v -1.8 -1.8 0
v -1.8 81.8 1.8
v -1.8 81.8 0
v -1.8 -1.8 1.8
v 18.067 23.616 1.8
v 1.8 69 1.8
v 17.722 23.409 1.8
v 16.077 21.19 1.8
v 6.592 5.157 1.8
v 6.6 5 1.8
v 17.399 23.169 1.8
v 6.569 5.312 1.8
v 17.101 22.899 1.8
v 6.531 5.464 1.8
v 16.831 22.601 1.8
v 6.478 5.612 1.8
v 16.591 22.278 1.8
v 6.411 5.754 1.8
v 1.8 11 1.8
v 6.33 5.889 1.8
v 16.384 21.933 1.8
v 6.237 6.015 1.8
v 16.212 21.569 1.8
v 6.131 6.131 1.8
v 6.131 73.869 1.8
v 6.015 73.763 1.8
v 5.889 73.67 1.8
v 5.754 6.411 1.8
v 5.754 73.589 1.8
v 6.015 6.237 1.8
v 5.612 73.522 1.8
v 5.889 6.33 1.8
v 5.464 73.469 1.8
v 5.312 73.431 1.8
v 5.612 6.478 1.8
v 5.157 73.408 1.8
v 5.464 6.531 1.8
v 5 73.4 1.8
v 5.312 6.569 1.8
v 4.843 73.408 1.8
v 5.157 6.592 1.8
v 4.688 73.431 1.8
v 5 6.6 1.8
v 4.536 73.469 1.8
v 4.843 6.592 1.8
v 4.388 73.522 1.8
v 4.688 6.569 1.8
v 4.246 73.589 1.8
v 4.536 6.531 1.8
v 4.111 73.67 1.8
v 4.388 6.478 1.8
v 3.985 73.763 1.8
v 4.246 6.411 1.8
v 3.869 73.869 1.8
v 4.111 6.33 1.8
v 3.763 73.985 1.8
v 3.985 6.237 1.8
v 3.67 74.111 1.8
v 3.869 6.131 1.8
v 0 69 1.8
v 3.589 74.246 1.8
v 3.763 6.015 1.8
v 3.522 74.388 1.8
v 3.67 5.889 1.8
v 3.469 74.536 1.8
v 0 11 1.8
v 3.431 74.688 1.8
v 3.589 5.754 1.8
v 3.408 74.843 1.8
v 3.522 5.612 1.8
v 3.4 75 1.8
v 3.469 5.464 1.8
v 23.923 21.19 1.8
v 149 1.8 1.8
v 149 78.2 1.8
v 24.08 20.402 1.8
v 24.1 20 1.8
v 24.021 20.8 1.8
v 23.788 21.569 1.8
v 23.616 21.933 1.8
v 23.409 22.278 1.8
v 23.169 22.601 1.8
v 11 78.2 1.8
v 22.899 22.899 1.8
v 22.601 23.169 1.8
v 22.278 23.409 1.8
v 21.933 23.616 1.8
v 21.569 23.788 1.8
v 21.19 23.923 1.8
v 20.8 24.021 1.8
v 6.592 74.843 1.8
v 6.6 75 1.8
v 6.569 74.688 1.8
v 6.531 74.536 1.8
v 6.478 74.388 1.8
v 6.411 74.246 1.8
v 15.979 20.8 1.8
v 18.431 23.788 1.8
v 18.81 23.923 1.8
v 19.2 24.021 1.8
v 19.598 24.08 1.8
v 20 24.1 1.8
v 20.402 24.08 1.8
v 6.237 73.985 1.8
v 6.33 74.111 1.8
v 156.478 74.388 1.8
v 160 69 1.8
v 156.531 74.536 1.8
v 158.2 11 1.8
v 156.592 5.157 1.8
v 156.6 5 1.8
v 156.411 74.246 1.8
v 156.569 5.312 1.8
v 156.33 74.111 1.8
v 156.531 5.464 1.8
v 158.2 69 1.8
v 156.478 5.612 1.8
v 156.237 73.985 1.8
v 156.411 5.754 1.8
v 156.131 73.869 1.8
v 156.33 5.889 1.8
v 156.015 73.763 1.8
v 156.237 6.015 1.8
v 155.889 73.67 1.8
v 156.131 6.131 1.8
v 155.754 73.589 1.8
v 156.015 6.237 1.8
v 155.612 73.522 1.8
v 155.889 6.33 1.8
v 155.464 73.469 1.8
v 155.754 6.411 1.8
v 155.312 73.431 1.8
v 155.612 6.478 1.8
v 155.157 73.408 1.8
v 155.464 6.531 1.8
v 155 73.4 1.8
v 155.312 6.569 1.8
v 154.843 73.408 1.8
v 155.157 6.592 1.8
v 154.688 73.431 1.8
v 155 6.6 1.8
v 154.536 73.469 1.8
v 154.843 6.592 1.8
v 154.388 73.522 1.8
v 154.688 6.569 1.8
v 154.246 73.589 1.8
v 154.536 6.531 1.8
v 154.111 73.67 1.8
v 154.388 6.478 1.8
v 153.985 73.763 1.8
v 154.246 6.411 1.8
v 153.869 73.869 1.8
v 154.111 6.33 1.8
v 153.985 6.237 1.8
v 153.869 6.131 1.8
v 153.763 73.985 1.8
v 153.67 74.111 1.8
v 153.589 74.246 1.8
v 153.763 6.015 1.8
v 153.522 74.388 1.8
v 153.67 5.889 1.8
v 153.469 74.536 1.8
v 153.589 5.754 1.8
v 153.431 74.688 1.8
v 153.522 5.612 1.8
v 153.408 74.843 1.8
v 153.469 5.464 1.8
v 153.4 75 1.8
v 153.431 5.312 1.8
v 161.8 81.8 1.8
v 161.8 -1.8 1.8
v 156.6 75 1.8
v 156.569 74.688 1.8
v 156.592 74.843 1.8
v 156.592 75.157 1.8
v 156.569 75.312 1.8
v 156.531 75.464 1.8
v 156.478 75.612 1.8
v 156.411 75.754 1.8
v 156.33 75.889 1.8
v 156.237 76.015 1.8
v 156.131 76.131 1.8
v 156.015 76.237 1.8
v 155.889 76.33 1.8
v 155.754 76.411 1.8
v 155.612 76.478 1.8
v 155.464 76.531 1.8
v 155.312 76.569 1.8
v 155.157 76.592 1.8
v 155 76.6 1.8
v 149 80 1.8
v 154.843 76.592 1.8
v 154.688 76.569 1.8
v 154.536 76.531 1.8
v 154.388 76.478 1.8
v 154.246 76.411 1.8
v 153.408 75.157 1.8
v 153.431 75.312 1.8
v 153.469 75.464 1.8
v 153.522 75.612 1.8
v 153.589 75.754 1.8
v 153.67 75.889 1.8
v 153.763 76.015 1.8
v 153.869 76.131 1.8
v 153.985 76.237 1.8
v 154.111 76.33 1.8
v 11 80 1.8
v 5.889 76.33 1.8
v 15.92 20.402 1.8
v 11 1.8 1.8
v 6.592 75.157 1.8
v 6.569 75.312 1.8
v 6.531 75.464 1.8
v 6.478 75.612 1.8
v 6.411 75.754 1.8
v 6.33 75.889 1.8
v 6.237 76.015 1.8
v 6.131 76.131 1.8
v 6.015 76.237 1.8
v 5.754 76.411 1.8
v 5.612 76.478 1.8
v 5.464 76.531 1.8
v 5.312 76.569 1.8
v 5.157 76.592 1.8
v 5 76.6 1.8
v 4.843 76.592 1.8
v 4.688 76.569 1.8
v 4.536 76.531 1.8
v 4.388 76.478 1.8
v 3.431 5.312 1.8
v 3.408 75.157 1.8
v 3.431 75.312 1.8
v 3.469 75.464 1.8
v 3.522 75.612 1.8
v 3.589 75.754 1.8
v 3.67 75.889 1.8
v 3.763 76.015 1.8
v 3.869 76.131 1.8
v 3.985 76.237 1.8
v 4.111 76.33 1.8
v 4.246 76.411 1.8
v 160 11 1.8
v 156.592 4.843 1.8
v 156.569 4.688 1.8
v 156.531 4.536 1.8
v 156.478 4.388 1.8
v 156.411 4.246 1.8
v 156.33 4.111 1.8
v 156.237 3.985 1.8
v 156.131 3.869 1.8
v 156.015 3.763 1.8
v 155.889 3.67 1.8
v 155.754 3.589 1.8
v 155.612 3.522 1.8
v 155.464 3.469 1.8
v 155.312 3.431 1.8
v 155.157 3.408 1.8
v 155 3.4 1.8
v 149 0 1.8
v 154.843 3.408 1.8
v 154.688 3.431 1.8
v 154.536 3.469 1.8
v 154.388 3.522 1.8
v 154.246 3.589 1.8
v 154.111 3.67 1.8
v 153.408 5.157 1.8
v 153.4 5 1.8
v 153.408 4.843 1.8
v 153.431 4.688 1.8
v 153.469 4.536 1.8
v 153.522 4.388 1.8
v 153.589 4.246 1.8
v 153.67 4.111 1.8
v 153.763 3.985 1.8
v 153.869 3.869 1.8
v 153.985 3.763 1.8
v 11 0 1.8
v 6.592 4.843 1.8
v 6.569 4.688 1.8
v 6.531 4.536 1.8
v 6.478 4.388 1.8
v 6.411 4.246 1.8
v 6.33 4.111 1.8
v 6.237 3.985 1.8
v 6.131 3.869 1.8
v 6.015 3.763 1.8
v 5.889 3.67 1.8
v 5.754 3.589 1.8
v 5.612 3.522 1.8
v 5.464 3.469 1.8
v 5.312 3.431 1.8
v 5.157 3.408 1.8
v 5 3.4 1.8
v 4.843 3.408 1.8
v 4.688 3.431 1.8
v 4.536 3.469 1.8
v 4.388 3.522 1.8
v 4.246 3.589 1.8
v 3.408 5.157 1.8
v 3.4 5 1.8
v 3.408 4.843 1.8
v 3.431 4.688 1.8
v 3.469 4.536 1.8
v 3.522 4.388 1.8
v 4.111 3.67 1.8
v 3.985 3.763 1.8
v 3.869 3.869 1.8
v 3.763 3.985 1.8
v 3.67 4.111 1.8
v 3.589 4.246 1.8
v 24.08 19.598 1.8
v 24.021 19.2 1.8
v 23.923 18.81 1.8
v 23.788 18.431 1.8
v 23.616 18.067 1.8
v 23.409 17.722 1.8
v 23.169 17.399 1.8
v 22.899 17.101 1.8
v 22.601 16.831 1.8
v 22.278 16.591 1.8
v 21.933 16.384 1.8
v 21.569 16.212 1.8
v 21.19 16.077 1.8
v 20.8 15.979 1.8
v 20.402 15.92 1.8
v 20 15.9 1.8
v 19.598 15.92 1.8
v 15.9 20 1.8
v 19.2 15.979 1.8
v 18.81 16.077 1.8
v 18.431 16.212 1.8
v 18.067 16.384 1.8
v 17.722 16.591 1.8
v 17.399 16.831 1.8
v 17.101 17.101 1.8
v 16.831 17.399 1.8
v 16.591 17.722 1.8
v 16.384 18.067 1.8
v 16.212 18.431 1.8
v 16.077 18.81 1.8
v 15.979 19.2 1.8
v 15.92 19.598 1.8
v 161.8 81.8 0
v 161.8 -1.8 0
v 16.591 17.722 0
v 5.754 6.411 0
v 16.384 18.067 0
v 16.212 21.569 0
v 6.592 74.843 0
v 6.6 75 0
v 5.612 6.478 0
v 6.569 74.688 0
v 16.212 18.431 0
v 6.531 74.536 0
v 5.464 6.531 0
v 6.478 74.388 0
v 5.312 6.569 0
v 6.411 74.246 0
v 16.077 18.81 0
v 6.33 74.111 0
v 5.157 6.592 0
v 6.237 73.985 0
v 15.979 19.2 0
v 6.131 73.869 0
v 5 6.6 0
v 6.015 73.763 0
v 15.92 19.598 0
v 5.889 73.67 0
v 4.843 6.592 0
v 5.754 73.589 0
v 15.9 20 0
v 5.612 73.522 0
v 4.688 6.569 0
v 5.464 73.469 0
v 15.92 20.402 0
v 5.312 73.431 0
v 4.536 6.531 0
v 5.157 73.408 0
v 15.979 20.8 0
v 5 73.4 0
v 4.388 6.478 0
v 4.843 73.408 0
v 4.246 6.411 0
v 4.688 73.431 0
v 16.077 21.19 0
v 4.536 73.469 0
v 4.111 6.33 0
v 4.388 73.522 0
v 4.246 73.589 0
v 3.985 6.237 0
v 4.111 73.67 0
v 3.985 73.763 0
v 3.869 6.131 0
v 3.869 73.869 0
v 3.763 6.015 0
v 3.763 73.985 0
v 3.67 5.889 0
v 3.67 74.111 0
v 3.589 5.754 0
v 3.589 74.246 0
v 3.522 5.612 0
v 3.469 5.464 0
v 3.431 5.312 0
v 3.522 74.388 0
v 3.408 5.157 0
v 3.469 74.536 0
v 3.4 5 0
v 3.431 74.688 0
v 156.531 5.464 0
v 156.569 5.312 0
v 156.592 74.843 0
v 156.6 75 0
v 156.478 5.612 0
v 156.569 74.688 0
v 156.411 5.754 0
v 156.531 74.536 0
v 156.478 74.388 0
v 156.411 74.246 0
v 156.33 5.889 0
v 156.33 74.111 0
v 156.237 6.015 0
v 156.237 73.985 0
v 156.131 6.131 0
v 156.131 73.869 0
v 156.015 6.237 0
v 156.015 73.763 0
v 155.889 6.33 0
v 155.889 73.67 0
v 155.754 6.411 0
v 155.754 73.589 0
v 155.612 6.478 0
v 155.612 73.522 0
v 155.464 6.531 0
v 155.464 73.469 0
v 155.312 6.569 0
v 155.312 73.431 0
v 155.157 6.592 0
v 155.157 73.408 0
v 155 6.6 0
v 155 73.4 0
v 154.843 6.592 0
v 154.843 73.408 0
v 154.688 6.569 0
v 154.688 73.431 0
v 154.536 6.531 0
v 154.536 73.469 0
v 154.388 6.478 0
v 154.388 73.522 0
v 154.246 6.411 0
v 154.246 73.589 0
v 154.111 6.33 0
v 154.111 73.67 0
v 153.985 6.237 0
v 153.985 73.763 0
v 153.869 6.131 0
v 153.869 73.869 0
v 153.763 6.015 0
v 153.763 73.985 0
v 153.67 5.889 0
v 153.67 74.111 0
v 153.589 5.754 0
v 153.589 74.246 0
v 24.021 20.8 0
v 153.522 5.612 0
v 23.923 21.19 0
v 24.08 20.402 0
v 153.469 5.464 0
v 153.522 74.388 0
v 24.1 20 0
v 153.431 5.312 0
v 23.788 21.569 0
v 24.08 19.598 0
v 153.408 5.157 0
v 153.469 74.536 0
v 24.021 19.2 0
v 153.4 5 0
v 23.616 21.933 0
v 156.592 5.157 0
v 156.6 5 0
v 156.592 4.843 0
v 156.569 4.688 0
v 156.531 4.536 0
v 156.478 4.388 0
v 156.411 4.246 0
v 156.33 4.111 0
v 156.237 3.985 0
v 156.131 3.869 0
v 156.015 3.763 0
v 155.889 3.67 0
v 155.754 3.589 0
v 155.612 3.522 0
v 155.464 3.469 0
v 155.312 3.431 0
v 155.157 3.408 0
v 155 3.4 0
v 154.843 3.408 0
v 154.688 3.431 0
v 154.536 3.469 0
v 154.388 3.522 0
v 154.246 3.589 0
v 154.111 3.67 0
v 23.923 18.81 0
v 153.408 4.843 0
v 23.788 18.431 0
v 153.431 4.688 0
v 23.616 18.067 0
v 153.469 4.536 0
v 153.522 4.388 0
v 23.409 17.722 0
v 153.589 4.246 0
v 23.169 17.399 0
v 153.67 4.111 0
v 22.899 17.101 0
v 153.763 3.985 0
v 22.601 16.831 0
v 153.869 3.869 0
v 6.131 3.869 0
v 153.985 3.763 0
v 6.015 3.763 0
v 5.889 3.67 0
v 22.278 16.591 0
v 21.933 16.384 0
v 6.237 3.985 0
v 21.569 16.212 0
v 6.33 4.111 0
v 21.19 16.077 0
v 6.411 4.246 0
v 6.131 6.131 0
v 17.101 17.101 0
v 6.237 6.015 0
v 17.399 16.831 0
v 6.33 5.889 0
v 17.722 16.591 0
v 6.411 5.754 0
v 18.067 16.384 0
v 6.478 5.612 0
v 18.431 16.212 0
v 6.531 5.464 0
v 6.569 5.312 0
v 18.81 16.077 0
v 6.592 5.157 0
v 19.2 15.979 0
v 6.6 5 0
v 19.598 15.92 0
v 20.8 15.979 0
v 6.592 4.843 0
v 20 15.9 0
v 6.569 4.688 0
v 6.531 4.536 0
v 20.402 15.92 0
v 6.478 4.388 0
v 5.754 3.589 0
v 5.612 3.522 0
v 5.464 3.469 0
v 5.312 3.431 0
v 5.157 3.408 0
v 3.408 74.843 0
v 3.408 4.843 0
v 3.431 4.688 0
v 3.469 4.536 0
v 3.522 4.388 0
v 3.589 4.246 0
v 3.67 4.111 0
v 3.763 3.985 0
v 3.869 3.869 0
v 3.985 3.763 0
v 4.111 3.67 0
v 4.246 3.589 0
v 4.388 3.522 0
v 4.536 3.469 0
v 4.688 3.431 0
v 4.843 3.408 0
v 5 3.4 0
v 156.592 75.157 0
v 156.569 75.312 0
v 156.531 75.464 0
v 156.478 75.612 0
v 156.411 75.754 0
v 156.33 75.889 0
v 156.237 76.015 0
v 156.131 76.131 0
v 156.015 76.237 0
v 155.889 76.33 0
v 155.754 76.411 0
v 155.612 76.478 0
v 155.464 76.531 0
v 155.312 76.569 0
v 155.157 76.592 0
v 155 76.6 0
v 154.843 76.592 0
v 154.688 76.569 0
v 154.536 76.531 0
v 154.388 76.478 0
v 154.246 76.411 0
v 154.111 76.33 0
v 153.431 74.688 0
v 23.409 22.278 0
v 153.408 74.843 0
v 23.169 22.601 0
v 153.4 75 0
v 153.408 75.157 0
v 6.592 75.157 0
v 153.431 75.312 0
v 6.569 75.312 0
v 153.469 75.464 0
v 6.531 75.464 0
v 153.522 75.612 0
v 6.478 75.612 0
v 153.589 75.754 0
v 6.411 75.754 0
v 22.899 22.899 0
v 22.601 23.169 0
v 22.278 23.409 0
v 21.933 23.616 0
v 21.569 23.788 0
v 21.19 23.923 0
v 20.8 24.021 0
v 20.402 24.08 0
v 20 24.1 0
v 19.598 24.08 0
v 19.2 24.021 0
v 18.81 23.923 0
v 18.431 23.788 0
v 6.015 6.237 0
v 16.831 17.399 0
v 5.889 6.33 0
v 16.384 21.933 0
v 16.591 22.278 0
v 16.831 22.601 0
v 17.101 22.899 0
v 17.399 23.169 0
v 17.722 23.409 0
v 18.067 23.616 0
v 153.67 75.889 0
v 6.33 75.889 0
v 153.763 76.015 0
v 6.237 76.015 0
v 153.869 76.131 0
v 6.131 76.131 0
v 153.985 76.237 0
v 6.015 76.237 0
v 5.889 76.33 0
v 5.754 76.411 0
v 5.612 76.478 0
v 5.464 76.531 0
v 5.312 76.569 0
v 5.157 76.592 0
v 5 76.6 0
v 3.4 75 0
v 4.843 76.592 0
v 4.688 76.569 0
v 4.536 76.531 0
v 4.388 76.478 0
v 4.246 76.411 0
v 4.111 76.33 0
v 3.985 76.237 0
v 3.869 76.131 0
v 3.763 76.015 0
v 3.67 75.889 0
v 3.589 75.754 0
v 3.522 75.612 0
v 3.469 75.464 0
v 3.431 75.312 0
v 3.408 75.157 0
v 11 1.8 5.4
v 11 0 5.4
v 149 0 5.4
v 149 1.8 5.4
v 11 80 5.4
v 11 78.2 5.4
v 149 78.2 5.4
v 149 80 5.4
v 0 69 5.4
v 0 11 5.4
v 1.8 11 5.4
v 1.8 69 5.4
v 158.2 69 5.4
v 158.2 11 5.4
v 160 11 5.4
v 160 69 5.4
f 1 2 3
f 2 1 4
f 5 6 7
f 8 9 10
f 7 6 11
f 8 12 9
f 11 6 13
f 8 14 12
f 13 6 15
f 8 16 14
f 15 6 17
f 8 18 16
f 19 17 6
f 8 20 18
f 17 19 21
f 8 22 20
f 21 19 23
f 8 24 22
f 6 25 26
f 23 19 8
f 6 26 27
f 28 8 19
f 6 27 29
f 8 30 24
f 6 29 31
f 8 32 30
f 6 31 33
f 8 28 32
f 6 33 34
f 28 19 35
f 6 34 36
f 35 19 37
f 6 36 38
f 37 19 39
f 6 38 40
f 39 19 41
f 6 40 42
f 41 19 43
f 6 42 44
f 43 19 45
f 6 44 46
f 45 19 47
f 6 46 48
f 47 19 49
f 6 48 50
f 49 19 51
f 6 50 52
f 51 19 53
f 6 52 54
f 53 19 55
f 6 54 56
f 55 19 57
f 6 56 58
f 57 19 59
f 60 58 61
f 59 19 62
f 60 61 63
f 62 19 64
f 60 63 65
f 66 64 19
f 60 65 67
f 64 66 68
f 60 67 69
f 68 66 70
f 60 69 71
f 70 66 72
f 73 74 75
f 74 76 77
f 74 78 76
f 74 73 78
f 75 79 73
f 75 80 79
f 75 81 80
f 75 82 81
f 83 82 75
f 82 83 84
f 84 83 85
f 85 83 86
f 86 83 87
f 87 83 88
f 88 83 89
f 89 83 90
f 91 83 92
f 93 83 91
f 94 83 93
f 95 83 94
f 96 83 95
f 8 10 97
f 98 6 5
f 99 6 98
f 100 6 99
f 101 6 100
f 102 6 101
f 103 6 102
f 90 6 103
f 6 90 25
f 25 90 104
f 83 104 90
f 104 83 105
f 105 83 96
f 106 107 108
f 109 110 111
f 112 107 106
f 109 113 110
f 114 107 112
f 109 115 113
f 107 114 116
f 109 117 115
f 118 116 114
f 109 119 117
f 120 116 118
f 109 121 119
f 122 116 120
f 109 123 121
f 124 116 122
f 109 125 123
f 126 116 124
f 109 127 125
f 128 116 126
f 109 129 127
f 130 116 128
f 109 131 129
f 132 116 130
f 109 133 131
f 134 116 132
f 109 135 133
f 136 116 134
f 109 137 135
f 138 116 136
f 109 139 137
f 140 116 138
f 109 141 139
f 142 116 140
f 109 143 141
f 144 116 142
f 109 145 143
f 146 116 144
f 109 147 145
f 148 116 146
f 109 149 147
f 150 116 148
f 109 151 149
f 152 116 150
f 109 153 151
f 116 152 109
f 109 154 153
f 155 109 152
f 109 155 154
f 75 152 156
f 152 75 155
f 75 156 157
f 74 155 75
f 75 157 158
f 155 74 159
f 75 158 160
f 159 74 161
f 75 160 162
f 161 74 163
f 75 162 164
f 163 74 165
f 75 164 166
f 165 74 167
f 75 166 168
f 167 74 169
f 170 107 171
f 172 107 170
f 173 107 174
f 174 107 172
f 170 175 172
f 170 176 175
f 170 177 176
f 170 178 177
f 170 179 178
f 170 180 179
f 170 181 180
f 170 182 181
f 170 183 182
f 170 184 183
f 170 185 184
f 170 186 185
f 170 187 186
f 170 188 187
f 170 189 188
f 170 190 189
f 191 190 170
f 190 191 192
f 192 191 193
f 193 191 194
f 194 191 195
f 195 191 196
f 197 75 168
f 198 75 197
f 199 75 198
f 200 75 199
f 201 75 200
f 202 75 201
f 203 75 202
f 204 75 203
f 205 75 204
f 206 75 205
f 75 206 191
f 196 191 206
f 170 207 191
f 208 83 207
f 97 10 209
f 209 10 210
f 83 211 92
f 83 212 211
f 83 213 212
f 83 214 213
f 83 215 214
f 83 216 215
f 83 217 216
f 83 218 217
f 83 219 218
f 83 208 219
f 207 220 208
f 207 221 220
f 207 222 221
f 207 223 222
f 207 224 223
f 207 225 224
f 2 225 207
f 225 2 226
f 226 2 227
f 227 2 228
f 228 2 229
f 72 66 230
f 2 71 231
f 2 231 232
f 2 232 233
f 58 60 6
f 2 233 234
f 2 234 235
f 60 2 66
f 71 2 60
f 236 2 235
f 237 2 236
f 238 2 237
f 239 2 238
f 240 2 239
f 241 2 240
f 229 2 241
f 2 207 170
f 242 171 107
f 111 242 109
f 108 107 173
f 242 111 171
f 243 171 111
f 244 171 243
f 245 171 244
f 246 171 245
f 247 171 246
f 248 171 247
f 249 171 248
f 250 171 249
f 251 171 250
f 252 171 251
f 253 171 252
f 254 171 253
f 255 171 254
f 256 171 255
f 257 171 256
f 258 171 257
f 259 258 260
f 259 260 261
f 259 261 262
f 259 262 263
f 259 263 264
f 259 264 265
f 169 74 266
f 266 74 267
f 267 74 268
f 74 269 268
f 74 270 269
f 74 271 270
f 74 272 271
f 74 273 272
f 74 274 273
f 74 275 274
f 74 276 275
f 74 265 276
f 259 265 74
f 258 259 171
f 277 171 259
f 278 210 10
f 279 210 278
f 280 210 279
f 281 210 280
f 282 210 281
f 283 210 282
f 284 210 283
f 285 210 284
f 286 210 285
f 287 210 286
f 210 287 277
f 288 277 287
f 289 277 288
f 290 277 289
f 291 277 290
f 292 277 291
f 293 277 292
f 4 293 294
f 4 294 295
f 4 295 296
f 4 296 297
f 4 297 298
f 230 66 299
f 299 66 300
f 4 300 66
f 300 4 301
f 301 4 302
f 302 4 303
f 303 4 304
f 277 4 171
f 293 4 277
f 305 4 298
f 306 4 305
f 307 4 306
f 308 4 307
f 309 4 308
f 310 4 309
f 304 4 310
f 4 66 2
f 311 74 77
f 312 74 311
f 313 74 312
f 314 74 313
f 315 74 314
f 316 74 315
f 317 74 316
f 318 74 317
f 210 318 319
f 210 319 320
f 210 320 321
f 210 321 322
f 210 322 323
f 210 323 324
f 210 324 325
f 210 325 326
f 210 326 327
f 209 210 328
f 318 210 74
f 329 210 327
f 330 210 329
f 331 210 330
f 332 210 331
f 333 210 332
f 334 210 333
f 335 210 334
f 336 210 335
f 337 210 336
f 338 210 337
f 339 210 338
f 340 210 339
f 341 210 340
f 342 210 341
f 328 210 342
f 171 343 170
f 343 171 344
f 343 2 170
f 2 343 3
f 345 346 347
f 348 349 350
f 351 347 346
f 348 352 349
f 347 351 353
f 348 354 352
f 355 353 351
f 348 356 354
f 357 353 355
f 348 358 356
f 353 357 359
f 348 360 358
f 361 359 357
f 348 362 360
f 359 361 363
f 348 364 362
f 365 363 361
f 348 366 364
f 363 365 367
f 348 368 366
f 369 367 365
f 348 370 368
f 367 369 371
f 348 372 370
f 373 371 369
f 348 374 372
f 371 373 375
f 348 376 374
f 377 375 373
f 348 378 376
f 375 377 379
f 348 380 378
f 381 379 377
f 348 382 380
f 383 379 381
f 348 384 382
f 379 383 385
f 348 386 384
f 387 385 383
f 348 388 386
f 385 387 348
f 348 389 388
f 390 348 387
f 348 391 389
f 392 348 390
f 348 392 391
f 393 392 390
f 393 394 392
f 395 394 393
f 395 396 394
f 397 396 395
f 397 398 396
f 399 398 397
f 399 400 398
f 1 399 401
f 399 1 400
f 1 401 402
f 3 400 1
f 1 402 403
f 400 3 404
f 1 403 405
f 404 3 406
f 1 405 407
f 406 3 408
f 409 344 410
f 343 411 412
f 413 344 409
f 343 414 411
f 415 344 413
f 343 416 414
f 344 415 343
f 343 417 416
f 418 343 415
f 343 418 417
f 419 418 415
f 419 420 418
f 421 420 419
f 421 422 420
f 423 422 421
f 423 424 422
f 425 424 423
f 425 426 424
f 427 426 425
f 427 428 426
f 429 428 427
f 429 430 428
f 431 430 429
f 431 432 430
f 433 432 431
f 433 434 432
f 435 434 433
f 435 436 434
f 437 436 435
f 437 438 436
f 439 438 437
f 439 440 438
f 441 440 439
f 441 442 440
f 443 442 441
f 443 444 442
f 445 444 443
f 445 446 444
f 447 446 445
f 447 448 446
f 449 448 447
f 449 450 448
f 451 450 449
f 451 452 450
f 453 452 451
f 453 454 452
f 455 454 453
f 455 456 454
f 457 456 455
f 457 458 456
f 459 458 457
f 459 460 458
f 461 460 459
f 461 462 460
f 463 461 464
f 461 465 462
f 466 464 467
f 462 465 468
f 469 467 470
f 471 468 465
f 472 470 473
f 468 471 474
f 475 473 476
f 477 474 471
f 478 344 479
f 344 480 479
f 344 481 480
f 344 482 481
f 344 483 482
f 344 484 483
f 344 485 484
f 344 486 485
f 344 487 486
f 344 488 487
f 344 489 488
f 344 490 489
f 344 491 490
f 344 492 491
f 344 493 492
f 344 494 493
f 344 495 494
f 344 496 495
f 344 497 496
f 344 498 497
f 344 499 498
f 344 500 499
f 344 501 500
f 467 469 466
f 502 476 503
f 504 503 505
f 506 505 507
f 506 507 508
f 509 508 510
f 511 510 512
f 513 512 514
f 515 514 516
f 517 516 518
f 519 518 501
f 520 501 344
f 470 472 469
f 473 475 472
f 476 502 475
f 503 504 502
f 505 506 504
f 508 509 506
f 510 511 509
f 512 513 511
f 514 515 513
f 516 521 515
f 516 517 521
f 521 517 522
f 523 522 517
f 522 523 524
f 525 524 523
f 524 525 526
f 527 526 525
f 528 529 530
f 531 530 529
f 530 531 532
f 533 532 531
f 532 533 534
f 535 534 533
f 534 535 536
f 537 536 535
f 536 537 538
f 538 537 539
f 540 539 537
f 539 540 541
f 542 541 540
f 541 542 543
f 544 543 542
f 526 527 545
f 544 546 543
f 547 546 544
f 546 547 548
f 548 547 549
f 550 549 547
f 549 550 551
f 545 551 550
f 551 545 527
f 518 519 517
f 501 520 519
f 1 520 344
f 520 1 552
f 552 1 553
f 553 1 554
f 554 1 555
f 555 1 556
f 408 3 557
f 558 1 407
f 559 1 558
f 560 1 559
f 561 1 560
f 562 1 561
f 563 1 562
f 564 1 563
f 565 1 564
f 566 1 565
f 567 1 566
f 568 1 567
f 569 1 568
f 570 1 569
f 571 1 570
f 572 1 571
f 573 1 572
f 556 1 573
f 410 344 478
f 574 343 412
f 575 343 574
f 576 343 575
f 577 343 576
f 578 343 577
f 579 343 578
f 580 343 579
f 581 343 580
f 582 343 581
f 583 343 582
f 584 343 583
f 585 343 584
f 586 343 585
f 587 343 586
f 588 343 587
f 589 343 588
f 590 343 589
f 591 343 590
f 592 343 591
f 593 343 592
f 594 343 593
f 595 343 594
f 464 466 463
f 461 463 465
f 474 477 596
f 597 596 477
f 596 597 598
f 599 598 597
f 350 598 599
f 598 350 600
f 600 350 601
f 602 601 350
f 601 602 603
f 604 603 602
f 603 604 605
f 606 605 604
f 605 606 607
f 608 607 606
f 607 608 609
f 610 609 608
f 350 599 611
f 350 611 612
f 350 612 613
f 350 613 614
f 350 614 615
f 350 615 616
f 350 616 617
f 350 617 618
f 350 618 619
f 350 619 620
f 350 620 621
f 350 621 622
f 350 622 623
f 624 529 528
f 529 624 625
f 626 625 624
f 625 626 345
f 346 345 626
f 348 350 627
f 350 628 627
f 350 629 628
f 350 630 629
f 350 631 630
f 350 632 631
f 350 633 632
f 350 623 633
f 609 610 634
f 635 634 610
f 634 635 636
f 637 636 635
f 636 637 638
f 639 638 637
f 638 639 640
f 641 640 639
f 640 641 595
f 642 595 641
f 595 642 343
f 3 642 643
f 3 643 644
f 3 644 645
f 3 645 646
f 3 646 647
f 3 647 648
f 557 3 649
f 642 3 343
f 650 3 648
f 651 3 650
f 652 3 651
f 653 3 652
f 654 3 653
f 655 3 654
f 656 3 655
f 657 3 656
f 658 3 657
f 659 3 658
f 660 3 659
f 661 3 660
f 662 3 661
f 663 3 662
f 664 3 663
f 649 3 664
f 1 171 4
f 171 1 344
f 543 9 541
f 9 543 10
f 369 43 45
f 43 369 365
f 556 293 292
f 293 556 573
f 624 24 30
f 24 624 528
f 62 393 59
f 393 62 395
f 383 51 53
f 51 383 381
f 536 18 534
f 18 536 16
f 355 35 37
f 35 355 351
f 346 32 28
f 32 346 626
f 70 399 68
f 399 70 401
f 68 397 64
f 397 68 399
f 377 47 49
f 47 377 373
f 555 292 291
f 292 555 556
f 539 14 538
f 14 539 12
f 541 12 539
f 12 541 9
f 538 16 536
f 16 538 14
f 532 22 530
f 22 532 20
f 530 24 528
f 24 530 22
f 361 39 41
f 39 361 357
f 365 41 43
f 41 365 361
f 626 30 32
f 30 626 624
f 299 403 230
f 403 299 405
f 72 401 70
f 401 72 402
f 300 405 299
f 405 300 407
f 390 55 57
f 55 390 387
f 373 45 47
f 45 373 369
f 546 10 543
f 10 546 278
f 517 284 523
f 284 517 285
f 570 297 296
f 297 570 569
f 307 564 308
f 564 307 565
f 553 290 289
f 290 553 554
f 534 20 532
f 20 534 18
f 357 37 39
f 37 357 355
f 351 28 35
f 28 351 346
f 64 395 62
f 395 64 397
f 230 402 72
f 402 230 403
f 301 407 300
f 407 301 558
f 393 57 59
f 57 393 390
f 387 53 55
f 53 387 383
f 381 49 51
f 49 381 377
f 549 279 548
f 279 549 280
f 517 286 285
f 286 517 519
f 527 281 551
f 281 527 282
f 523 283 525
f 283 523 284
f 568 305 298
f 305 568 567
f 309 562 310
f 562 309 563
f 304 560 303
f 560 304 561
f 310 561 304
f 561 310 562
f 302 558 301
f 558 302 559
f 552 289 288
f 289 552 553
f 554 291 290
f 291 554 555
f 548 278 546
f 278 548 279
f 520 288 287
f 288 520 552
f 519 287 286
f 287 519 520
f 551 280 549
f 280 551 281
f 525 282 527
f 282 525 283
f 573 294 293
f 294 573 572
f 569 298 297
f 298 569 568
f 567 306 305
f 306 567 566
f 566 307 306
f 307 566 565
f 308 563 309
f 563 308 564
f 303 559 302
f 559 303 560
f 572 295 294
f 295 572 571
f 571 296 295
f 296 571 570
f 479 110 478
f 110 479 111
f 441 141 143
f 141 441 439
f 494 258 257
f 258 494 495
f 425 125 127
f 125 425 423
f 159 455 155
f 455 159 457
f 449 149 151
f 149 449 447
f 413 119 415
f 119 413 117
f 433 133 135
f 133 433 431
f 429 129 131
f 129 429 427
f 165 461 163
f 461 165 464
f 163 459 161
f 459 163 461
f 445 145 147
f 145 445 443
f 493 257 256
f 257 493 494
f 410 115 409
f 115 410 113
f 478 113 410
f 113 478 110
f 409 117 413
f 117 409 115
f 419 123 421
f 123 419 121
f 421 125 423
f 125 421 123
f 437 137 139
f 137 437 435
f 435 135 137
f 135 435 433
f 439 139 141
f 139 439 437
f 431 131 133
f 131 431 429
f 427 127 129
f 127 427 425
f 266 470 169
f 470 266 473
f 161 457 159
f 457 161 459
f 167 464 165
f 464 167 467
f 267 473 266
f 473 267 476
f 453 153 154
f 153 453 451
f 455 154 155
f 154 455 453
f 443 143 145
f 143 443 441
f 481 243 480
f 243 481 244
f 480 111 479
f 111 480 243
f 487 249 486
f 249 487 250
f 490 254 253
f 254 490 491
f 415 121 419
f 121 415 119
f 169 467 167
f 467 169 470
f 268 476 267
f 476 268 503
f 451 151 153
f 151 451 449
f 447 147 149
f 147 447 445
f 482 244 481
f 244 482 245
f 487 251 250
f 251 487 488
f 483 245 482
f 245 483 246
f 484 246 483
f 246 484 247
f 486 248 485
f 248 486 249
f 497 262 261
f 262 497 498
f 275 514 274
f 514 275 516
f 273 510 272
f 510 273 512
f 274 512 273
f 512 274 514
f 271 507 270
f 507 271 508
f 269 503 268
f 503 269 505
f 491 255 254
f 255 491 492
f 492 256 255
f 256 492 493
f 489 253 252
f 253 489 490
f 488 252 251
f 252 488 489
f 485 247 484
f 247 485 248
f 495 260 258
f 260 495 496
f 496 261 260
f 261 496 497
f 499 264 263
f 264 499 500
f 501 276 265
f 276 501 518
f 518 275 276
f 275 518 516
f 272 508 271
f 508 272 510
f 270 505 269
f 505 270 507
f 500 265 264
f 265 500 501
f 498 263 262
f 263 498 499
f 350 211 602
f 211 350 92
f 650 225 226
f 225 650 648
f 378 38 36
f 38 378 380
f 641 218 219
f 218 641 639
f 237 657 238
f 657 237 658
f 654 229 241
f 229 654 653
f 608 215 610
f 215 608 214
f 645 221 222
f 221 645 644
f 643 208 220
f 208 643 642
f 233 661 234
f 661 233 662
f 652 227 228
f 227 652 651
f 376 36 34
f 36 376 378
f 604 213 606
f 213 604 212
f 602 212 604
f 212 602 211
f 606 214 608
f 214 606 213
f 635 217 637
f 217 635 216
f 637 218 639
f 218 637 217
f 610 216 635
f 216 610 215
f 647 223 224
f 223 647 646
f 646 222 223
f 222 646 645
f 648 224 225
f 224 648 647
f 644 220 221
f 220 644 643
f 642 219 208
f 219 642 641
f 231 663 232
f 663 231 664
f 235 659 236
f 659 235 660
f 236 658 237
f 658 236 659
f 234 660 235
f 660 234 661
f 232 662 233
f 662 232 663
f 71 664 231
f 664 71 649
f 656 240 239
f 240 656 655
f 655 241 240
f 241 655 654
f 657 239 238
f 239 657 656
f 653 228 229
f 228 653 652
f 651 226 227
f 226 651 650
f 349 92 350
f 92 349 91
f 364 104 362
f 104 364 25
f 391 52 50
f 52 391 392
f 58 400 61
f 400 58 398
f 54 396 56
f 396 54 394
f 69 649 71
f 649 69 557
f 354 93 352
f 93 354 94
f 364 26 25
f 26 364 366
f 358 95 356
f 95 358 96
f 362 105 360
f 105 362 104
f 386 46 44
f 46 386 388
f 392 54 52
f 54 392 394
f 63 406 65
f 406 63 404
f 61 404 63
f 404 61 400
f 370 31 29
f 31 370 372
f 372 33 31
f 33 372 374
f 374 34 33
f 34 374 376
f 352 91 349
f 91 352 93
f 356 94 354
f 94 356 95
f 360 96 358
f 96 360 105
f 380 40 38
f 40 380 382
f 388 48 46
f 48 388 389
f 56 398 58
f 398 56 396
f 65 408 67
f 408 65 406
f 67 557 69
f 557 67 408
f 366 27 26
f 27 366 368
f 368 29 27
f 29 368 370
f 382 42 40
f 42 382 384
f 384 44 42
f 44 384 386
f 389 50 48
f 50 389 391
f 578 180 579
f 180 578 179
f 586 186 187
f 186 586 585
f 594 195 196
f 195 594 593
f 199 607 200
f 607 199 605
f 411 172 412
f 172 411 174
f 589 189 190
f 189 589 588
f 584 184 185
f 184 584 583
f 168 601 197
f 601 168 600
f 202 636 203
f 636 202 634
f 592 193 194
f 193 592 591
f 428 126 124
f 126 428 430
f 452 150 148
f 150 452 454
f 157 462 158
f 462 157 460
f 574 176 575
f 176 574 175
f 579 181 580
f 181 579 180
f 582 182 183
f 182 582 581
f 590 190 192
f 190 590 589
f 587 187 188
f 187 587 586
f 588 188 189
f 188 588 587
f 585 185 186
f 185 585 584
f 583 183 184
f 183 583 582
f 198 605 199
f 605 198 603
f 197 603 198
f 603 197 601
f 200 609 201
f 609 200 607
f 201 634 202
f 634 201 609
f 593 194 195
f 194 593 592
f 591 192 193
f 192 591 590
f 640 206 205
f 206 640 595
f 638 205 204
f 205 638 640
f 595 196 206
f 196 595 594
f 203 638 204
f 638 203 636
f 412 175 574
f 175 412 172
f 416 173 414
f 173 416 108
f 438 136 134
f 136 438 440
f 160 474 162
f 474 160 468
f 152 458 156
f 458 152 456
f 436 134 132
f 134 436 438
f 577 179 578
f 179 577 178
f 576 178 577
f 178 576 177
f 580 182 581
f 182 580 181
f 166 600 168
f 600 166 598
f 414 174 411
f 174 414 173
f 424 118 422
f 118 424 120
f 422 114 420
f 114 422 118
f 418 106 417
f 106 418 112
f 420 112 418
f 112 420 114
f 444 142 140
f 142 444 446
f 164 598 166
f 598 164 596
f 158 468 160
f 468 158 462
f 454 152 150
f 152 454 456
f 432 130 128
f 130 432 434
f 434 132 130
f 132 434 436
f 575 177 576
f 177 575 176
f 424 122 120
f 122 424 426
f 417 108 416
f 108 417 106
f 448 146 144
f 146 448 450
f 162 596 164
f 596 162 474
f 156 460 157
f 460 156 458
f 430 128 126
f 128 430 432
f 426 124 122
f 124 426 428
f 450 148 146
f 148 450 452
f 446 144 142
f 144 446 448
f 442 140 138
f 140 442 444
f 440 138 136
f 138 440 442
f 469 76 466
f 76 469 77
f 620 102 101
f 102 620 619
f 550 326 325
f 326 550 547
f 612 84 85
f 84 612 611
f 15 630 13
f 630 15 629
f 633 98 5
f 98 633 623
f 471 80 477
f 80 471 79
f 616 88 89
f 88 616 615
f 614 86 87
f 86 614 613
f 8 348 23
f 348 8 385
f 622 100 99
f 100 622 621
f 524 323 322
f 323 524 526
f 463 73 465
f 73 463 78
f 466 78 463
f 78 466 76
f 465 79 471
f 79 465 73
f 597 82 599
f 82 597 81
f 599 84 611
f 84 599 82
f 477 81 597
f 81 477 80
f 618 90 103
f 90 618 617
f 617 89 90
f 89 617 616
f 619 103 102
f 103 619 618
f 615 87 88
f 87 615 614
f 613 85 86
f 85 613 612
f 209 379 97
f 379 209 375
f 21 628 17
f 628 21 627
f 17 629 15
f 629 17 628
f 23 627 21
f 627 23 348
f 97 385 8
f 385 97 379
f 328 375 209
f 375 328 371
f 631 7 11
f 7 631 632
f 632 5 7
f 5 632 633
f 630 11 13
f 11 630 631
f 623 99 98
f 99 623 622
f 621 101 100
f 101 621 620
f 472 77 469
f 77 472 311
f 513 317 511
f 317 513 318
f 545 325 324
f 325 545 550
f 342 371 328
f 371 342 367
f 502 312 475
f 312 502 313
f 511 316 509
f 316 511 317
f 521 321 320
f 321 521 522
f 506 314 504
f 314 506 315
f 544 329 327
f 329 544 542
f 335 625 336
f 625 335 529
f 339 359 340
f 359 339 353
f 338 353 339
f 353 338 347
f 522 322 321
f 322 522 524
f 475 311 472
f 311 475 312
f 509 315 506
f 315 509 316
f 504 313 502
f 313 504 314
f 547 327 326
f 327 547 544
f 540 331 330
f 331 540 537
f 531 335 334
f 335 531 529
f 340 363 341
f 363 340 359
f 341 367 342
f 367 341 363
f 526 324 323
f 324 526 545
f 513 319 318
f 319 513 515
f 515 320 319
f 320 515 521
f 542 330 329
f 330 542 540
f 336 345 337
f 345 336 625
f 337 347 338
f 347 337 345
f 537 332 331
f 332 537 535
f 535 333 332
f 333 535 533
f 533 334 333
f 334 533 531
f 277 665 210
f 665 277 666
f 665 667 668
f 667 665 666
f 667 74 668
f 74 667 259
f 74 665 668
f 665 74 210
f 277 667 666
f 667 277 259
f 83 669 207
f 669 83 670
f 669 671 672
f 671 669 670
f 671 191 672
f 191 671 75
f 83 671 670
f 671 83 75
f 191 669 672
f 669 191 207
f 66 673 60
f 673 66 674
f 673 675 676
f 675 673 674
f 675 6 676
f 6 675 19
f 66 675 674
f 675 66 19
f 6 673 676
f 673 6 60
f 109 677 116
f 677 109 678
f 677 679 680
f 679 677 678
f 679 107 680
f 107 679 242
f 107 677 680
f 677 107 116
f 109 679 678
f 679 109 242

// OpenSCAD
// Definition size of housing
// **************************

//whole unit
length =160;
width      = 80;    
backheight = 22;

//walls
backwall = 1.8;

//corner pillars
corneroffset = 5;



//Definition of circle angular resolution
resol        = 64;           // Identical to housing !!!



difference () {
    
    union() {

    translate ([-backwall,-backwall,0]) cube([length+backwall*2,width+backwall*2,backwall]); //back
    }

    //corner holes
    translate ([corneroffset,corneroffset,0]) cylinder (h=backheight+2, r=1.6, $fn=resol);
    translate ([length-corneroffset,corneroffset,0]) cylinder (h=backheight+2, r=1.6, $fn=resol);
    translate ([corneroffset,width-corneroffset,0]) cylinder (h=backheight+2, r=1.6, $fn=resol);
    translate ([length-corneroffset,width-corneroffset,0]) cylinder (h=backheight+2, r=1.6, $fn=resol);
    
    //psu socket
    translate ([20,20,0]) cylinder (h=backheight+2, r=4.1, $fn=resol);


}

translate ([corneroffset*2+1,0,0]) cube([length-(corneroffset*2+1)*2,backwall,backwall*3]); //flange
translate ([corneroffset*2+1,width-backwall,0]) cube([length-(corneroffset*2+1)*2,backwall,backwall*3]); //flange
translate ([0,corneroffset*2+1,0]) cube([backwall,width-(corneroffset*2+1)*2,backwall*3]); //flange
translate ([length-backwall,corneroffset*2+1,0]) cube([backwall,width-(corneroffset*2+1)*2,backwall*3]); //flange
